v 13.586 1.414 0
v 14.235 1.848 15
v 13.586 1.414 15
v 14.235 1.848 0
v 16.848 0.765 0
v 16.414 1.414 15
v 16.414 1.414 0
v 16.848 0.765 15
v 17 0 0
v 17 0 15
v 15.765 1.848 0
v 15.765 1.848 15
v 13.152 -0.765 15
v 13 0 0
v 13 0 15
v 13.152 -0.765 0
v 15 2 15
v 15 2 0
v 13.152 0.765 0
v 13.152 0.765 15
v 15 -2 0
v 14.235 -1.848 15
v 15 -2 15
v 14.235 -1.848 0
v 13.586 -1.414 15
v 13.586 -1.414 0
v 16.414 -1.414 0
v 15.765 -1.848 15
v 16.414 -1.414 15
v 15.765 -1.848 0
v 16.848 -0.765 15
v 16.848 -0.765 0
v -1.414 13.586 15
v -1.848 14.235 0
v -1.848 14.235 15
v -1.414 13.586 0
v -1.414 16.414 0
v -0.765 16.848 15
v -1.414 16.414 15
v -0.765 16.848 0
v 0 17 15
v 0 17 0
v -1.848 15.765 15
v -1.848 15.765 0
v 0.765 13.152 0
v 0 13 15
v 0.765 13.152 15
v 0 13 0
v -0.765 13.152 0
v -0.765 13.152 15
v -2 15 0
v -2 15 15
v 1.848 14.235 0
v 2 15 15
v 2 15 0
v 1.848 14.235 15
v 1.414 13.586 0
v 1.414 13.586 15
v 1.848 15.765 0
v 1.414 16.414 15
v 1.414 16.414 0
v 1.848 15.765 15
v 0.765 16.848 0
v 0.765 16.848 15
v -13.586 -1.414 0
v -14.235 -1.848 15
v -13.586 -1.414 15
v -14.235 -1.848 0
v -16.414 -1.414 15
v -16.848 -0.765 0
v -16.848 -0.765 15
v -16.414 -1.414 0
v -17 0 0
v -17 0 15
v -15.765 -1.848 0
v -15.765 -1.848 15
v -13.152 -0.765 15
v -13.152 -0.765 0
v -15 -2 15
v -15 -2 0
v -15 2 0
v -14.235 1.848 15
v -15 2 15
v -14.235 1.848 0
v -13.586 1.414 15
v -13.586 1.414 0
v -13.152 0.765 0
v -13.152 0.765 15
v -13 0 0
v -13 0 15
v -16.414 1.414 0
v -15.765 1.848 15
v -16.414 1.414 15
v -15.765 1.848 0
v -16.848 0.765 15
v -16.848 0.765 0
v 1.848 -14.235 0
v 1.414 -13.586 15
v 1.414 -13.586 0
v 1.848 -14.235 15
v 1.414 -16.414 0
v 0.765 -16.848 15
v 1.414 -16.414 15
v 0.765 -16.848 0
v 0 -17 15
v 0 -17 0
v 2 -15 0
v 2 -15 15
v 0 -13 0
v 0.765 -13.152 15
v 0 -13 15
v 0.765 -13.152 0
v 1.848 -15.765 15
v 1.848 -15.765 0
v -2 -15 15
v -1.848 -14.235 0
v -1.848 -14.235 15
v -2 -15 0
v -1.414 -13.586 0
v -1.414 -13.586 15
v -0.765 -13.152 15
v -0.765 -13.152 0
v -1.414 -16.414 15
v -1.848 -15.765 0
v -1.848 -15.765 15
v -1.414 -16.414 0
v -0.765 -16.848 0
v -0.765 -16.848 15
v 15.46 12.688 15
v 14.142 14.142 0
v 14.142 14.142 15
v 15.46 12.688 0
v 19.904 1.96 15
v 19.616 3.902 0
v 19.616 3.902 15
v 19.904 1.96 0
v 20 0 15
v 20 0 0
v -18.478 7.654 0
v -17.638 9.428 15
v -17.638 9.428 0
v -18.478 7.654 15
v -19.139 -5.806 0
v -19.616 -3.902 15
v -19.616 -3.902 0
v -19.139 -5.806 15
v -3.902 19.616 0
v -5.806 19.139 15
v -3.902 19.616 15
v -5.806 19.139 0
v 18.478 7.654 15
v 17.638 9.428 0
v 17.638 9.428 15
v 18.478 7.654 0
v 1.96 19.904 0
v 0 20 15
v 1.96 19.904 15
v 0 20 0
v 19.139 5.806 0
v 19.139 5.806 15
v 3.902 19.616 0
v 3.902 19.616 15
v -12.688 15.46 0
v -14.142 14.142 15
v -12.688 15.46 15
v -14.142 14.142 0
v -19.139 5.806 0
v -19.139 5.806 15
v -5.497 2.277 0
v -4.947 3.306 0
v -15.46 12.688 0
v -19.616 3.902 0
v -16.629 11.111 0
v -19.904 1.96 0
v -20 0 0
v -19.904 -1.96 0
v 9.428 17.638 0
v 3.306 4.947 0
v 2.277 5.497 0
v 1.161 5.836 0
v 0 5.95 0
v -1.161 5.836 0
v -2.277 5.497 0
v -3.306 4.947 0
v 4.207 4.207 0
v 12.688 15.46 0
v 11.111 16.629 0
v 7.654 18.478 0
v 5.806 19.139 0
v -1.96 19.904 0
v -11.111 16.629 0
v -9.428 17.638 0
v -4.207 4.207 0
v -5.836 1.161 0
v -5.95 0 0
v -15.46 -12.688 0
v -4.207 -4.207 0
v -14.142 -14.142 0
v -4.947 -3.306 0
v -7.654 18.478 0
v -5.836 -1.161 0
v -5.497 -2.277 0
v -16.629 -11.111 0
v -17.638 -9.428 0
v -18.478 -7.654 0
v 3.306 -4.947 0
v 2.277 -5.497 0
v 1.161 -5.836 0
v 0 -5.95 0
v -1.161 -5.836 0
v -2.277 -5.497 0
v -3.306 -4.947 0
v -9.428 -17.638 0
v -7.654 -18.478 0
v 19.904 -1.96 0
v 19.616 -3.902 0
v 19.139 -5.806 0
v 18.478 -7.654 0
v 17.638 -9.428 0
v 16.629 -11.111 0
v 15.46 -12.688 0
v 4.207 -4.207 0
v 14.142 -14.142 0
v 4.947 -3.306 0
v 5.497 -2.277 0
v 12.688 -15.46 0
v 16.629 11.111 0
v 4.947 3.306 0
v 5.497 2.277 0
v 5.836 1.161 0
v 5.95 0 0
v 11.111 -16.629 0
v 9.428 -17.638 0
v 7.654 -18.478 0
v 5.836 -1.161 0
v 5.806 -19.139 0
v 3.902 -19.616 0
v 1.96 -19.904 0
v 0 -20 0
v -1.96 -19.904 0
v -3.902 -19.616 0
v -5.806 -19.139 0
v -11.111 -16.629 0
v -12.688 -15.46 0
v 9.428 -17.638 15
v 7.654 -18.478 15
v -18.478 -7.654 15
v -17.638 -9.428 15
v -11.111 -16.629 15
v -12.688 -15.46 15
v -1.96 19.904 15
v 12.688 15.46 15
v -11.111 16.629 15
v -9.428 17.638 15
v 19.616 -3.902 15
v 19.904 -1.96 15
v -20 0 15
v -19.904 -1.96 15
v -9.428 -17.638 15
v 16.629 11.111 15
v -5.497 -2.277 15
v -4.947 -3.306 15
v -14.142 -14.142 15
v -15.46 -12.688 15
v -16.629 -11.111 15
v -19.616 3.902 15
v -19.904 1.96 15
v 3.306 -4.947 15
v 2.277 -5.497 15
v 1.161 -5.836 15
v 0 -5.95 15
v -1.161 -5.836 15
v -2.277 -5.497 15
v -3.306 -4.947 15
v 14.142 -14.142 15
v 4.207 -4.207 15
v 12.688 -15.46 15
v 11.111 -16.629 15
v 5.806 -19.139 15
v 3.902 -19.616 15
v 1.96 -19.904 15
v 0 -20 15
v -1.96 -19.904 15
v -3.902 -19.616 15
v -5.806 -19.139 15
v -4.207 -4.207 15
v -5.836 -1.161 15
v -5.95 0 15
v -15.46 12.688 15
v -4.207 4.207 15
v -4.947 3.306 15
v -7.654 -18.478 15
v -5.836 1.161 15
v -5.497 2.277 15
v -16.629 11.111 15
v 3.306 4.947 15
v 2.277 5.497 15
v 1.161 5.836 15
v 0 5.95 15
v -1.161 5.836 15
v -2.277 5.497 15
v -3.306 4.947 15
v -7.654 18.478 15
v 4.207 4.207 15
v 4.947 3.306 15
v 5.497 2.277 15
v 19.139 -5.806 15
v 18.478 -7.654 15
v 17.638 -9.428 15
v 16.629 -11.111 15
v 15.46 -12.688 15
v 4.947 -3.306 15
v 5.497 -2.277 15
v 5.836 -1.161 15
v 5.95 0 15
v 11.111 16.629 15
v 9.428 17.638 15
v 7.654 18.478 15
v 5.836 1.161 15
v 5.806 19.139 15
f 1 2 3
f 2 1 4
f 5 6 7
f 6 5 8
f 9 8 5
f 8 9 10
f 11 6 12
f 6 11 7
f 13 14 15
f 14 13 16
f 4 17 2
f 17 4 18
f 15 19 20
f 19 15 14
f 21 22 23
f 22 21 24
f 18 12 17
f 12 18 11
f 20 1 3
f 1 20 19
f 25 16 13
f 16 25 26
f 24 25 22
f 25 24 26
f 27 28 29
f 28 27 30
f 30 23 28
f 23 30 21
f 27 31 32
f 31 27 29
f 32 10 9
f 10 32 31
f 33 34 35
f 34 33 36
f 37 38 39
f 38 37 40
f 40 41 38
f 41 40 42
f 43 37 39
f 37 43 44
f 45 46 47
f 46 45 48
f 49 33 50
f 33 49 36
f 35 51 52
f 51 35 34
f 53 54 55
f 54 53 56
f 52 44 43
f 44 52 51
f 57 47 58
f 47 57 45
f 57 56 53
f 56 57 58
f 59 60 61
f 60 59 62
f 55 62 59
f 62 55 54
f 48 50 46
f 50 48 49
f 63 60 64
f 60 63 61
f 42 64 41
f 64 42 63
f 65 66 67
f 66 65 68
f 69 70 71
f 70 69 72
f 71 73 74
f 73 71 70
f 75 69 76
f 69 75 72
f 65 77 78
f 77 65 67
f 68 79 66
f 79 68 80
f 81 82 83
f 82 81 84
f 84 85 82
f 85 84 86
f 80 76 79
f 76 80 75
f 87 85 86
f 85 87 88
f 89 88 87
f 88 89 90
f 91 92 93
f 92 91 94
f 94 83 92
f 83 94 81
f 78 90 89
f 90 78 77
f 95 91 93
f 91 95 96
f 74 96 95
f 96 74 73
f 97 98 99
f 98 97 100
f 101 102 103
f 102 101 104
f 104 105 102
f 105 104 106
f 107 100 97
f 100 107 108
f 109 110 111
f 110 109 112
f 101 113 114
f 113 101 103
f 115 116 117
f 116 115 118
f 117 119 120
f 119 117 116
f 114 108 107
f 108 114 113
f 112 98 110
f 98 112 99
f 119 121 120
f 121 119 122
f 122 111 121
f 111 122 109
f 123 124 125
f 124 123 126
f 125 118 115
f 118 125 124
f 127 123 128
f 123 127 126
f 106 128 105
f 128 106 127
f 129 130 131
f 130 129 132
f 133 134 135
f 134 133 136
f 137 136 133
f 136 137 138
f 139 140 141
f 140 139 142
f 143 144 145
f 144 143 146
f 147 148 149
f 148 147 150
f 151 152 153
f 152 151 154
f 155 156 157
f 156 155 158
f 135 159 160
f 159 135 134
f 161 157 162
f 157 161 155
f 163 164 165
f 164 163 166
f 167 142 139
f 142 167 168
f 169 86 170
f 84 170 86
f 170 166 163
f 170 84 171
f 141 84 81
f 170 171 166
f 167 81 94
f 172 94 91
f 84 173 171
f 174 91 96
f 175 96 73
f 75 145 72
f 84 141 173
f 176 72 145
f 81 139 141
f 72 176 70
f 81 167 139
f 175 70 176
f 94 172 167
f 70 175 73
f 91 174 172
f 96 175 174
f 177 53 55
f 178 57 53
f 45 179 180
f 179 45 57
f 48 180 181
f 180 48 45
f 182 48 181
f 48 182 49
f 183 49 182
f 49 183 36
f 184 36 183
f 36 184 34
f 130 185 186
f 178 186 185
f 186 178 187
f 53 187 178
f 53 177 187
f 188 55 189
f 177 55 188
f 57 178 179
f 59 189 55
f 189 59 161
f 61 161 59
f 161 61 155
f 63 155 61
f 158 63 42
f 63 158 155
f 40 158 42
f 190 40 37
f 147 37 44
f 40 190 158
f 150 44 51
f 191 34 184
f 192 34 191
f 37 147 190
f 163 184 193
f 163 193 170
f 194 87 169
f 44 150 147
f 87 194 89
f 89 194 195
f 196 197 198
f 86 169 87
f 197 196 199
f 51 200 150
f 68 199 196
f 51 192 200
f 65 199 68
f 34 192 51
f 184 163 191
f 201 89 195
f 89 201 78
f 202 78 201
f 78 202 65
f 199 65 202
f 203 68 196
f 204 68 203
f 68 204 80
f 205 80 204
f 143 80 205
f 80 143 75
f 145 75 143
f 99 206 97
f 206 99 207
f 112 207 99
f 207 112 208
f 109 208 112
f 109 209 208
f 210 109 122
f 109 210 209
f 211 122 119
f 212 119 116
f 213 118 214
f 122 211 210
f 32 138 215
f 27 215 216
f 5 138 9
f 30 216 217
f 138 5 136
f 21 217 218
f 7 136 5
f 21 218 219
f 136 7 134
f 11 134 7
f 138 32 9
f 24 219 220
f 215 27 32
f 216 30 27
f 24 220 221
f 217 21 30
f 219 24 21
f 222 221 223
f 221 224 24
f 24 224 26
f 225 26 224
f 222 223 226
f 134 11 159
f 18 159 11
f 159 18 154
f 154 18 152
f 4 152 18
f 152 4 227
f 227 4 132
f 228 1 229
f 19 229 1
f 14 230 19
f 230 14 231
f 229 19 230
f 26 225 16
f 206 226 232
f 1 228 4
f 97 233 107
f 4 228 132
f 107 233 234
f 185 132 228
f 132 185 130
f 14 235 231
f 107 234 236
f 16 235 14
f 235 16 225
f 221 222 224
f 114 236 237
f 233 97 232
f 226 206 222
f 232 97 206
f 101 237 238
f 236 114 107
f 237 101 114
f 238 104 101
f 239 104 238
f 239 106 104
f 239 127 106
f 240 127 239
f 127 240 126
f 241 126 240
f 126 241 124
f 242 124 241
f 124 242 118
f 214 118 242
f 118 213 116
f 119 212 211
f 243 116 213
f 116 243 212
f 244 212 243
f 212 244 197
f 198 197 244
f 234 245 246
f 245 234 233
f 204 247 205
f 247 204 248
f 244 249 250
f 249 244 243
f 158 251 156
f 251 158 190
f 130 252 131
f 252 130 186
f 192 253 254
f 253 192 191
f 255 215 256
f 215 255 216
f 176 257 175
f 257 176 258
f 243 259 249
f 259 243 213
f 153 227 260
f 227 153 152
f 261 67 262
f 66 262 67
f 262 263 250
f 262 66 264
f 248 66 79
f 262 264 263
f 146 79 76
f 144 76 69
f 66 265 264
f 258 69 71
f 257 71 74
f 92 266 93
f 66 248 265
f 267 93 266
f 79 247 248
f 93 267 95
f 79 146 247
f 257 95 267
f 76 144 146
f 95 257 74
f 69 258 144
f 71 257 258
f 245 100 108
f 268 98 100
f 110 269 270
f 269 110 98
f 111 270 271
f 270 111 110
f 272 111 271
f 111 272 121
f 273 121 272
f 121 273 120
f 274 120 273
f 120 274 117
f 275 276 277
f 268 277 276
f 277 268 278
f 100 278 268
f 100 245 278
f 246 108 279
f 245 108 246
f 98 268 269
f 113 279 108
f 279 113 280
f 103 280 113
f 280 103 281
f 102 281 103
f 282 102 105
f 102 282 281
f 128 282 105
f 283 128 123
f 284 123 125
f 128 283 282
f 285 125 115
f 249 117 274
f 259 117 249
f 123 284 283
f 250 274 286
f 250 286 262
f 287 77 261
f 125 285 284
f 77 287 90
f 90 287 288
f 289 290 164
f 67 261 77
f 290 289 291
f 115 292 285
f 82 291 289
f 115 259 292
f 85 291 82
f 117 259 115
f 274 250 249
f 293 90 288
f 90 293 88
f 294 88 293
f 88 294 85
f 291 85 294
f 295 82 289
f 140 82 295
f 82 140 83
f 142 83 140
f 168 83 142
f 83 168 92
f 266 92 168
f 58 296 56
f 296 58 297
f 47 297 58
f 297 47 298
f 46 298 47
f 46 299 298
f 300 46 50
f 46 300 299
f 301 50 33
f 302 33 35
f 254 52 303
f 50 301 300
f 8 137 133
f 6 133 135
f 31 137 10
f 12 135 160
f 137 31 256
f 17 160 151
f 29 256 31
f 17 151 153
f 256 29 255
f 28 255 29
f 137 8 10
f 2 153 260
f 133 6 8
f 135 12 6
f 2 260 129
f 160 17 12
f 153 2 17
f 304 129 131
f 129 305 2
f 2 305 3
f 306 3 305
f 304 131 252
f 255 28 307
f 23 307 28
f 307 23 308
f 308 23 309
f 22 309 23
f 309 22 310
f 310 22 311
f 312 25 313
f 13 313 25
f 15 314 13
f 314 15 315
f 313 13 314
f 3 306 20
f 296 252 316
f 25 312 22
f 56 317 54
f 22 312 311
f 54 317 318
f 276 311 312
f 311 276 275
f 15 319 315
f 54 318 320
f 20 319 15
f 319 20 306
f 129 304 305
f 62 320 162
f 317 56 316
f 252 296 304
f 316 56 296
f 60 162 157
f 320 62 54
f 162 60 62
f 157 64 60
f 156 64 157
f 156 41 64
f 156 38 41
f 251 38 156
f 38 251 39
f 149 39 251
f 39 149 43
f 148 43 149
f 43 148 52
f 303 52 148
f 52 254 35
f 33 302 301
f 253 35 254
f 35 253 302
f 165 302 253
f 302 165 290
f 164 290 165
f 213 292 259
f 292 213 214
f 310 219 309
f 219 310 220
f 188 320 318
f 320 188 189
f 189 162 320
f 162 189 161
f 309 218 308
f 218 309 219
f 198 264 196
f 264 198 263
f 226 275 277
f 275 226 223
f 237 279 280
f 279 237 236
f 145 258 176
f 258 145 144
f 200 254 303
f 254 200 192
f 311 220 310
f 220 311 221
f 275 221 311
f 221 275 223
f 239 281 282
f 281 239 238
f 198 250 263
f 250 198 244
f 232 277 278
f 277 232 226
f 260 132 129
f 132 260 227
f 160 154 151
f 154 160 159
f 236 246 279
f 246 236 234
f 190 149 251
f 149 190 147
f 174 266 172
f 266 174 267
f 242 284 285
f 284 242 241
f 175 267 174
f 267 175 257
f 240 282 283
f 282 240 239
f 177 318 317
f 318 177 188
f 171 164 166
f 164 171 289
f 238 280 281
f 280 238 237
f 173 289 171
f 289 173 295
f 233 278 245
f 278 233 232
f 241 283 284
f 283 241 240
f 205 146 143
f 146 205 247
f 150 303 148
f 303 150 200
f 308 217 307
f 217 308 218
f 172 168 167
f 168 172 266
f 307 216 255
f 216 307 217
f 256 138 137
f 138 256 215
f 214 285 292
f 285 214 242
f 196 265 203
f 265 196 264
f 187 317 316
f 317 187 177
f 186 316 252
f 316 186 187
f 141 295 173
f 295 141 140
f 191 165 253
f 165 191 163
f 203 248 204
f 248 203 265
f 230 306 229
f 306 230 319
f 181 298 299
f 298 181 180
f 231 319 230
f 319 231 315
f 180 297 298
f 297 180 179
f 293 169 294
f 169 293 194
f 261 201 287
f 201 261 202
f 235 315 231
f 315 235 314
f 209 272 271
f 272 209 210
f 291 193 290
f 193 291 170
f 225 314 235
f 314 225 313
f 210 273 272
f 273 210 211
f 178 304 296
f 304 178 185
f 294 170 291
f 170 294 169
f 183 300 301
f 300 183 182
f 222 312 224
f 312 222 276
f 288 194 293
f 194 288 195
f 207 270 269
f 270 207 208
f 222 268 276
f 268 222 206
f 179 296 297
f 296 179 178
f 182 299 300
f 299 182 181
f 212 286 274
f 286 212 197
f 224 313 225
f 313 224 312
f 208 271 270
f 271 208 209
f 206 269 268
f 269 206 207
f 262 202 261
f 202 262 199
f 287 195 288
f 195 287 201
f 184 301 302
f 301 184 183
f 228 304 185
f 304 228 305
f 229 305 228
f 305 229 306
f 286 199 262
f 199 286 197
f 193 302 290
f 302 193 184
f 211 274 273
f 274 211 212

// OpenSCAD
// Clean 3D Printable TOP Hub for LoRa Ground Plane Antenna
// Mounts to top of project box - vertical element only
// Simple geometry - just vertical rod socket and mounting

// Parameters
rod_diameter = 11.1;        // 7/16" fiberglass rod
tolerance = 0.8;            // Print tolerance
hole_diameter = rod_diameter + tolerance;  // 11.9mm

hub_diameter = 40;          // Smaller than bottom hub
hub_height = 15;            // Lower profile
mount_diameter = 4.0;
mount_circle = 30;          // Smaller mounting circle

// Top hub - vertical element only
difference() {
    // Solid hub cylinder
    cylinder(h=hub_height, d=hub_diameter, $fn=64);
    
    // Vertical rod socket - THROUGH HOLE for cable routing
    translate([0, 0, -1])
        cylinder(h=hub_height + 2, d=hole_diameter, $fn=32);
    
    // Mounting holes
    for(i = [0:3]) {
        rotate([0, 0, i * 90]) {
            translate([mount_circle/2, 0, -1])
                cylinder(h=hub_height + 2, d=mount_diameter, $fn=16);
        }
    }
}

// Simple top hub - just vertical rod socket and mounting holes
